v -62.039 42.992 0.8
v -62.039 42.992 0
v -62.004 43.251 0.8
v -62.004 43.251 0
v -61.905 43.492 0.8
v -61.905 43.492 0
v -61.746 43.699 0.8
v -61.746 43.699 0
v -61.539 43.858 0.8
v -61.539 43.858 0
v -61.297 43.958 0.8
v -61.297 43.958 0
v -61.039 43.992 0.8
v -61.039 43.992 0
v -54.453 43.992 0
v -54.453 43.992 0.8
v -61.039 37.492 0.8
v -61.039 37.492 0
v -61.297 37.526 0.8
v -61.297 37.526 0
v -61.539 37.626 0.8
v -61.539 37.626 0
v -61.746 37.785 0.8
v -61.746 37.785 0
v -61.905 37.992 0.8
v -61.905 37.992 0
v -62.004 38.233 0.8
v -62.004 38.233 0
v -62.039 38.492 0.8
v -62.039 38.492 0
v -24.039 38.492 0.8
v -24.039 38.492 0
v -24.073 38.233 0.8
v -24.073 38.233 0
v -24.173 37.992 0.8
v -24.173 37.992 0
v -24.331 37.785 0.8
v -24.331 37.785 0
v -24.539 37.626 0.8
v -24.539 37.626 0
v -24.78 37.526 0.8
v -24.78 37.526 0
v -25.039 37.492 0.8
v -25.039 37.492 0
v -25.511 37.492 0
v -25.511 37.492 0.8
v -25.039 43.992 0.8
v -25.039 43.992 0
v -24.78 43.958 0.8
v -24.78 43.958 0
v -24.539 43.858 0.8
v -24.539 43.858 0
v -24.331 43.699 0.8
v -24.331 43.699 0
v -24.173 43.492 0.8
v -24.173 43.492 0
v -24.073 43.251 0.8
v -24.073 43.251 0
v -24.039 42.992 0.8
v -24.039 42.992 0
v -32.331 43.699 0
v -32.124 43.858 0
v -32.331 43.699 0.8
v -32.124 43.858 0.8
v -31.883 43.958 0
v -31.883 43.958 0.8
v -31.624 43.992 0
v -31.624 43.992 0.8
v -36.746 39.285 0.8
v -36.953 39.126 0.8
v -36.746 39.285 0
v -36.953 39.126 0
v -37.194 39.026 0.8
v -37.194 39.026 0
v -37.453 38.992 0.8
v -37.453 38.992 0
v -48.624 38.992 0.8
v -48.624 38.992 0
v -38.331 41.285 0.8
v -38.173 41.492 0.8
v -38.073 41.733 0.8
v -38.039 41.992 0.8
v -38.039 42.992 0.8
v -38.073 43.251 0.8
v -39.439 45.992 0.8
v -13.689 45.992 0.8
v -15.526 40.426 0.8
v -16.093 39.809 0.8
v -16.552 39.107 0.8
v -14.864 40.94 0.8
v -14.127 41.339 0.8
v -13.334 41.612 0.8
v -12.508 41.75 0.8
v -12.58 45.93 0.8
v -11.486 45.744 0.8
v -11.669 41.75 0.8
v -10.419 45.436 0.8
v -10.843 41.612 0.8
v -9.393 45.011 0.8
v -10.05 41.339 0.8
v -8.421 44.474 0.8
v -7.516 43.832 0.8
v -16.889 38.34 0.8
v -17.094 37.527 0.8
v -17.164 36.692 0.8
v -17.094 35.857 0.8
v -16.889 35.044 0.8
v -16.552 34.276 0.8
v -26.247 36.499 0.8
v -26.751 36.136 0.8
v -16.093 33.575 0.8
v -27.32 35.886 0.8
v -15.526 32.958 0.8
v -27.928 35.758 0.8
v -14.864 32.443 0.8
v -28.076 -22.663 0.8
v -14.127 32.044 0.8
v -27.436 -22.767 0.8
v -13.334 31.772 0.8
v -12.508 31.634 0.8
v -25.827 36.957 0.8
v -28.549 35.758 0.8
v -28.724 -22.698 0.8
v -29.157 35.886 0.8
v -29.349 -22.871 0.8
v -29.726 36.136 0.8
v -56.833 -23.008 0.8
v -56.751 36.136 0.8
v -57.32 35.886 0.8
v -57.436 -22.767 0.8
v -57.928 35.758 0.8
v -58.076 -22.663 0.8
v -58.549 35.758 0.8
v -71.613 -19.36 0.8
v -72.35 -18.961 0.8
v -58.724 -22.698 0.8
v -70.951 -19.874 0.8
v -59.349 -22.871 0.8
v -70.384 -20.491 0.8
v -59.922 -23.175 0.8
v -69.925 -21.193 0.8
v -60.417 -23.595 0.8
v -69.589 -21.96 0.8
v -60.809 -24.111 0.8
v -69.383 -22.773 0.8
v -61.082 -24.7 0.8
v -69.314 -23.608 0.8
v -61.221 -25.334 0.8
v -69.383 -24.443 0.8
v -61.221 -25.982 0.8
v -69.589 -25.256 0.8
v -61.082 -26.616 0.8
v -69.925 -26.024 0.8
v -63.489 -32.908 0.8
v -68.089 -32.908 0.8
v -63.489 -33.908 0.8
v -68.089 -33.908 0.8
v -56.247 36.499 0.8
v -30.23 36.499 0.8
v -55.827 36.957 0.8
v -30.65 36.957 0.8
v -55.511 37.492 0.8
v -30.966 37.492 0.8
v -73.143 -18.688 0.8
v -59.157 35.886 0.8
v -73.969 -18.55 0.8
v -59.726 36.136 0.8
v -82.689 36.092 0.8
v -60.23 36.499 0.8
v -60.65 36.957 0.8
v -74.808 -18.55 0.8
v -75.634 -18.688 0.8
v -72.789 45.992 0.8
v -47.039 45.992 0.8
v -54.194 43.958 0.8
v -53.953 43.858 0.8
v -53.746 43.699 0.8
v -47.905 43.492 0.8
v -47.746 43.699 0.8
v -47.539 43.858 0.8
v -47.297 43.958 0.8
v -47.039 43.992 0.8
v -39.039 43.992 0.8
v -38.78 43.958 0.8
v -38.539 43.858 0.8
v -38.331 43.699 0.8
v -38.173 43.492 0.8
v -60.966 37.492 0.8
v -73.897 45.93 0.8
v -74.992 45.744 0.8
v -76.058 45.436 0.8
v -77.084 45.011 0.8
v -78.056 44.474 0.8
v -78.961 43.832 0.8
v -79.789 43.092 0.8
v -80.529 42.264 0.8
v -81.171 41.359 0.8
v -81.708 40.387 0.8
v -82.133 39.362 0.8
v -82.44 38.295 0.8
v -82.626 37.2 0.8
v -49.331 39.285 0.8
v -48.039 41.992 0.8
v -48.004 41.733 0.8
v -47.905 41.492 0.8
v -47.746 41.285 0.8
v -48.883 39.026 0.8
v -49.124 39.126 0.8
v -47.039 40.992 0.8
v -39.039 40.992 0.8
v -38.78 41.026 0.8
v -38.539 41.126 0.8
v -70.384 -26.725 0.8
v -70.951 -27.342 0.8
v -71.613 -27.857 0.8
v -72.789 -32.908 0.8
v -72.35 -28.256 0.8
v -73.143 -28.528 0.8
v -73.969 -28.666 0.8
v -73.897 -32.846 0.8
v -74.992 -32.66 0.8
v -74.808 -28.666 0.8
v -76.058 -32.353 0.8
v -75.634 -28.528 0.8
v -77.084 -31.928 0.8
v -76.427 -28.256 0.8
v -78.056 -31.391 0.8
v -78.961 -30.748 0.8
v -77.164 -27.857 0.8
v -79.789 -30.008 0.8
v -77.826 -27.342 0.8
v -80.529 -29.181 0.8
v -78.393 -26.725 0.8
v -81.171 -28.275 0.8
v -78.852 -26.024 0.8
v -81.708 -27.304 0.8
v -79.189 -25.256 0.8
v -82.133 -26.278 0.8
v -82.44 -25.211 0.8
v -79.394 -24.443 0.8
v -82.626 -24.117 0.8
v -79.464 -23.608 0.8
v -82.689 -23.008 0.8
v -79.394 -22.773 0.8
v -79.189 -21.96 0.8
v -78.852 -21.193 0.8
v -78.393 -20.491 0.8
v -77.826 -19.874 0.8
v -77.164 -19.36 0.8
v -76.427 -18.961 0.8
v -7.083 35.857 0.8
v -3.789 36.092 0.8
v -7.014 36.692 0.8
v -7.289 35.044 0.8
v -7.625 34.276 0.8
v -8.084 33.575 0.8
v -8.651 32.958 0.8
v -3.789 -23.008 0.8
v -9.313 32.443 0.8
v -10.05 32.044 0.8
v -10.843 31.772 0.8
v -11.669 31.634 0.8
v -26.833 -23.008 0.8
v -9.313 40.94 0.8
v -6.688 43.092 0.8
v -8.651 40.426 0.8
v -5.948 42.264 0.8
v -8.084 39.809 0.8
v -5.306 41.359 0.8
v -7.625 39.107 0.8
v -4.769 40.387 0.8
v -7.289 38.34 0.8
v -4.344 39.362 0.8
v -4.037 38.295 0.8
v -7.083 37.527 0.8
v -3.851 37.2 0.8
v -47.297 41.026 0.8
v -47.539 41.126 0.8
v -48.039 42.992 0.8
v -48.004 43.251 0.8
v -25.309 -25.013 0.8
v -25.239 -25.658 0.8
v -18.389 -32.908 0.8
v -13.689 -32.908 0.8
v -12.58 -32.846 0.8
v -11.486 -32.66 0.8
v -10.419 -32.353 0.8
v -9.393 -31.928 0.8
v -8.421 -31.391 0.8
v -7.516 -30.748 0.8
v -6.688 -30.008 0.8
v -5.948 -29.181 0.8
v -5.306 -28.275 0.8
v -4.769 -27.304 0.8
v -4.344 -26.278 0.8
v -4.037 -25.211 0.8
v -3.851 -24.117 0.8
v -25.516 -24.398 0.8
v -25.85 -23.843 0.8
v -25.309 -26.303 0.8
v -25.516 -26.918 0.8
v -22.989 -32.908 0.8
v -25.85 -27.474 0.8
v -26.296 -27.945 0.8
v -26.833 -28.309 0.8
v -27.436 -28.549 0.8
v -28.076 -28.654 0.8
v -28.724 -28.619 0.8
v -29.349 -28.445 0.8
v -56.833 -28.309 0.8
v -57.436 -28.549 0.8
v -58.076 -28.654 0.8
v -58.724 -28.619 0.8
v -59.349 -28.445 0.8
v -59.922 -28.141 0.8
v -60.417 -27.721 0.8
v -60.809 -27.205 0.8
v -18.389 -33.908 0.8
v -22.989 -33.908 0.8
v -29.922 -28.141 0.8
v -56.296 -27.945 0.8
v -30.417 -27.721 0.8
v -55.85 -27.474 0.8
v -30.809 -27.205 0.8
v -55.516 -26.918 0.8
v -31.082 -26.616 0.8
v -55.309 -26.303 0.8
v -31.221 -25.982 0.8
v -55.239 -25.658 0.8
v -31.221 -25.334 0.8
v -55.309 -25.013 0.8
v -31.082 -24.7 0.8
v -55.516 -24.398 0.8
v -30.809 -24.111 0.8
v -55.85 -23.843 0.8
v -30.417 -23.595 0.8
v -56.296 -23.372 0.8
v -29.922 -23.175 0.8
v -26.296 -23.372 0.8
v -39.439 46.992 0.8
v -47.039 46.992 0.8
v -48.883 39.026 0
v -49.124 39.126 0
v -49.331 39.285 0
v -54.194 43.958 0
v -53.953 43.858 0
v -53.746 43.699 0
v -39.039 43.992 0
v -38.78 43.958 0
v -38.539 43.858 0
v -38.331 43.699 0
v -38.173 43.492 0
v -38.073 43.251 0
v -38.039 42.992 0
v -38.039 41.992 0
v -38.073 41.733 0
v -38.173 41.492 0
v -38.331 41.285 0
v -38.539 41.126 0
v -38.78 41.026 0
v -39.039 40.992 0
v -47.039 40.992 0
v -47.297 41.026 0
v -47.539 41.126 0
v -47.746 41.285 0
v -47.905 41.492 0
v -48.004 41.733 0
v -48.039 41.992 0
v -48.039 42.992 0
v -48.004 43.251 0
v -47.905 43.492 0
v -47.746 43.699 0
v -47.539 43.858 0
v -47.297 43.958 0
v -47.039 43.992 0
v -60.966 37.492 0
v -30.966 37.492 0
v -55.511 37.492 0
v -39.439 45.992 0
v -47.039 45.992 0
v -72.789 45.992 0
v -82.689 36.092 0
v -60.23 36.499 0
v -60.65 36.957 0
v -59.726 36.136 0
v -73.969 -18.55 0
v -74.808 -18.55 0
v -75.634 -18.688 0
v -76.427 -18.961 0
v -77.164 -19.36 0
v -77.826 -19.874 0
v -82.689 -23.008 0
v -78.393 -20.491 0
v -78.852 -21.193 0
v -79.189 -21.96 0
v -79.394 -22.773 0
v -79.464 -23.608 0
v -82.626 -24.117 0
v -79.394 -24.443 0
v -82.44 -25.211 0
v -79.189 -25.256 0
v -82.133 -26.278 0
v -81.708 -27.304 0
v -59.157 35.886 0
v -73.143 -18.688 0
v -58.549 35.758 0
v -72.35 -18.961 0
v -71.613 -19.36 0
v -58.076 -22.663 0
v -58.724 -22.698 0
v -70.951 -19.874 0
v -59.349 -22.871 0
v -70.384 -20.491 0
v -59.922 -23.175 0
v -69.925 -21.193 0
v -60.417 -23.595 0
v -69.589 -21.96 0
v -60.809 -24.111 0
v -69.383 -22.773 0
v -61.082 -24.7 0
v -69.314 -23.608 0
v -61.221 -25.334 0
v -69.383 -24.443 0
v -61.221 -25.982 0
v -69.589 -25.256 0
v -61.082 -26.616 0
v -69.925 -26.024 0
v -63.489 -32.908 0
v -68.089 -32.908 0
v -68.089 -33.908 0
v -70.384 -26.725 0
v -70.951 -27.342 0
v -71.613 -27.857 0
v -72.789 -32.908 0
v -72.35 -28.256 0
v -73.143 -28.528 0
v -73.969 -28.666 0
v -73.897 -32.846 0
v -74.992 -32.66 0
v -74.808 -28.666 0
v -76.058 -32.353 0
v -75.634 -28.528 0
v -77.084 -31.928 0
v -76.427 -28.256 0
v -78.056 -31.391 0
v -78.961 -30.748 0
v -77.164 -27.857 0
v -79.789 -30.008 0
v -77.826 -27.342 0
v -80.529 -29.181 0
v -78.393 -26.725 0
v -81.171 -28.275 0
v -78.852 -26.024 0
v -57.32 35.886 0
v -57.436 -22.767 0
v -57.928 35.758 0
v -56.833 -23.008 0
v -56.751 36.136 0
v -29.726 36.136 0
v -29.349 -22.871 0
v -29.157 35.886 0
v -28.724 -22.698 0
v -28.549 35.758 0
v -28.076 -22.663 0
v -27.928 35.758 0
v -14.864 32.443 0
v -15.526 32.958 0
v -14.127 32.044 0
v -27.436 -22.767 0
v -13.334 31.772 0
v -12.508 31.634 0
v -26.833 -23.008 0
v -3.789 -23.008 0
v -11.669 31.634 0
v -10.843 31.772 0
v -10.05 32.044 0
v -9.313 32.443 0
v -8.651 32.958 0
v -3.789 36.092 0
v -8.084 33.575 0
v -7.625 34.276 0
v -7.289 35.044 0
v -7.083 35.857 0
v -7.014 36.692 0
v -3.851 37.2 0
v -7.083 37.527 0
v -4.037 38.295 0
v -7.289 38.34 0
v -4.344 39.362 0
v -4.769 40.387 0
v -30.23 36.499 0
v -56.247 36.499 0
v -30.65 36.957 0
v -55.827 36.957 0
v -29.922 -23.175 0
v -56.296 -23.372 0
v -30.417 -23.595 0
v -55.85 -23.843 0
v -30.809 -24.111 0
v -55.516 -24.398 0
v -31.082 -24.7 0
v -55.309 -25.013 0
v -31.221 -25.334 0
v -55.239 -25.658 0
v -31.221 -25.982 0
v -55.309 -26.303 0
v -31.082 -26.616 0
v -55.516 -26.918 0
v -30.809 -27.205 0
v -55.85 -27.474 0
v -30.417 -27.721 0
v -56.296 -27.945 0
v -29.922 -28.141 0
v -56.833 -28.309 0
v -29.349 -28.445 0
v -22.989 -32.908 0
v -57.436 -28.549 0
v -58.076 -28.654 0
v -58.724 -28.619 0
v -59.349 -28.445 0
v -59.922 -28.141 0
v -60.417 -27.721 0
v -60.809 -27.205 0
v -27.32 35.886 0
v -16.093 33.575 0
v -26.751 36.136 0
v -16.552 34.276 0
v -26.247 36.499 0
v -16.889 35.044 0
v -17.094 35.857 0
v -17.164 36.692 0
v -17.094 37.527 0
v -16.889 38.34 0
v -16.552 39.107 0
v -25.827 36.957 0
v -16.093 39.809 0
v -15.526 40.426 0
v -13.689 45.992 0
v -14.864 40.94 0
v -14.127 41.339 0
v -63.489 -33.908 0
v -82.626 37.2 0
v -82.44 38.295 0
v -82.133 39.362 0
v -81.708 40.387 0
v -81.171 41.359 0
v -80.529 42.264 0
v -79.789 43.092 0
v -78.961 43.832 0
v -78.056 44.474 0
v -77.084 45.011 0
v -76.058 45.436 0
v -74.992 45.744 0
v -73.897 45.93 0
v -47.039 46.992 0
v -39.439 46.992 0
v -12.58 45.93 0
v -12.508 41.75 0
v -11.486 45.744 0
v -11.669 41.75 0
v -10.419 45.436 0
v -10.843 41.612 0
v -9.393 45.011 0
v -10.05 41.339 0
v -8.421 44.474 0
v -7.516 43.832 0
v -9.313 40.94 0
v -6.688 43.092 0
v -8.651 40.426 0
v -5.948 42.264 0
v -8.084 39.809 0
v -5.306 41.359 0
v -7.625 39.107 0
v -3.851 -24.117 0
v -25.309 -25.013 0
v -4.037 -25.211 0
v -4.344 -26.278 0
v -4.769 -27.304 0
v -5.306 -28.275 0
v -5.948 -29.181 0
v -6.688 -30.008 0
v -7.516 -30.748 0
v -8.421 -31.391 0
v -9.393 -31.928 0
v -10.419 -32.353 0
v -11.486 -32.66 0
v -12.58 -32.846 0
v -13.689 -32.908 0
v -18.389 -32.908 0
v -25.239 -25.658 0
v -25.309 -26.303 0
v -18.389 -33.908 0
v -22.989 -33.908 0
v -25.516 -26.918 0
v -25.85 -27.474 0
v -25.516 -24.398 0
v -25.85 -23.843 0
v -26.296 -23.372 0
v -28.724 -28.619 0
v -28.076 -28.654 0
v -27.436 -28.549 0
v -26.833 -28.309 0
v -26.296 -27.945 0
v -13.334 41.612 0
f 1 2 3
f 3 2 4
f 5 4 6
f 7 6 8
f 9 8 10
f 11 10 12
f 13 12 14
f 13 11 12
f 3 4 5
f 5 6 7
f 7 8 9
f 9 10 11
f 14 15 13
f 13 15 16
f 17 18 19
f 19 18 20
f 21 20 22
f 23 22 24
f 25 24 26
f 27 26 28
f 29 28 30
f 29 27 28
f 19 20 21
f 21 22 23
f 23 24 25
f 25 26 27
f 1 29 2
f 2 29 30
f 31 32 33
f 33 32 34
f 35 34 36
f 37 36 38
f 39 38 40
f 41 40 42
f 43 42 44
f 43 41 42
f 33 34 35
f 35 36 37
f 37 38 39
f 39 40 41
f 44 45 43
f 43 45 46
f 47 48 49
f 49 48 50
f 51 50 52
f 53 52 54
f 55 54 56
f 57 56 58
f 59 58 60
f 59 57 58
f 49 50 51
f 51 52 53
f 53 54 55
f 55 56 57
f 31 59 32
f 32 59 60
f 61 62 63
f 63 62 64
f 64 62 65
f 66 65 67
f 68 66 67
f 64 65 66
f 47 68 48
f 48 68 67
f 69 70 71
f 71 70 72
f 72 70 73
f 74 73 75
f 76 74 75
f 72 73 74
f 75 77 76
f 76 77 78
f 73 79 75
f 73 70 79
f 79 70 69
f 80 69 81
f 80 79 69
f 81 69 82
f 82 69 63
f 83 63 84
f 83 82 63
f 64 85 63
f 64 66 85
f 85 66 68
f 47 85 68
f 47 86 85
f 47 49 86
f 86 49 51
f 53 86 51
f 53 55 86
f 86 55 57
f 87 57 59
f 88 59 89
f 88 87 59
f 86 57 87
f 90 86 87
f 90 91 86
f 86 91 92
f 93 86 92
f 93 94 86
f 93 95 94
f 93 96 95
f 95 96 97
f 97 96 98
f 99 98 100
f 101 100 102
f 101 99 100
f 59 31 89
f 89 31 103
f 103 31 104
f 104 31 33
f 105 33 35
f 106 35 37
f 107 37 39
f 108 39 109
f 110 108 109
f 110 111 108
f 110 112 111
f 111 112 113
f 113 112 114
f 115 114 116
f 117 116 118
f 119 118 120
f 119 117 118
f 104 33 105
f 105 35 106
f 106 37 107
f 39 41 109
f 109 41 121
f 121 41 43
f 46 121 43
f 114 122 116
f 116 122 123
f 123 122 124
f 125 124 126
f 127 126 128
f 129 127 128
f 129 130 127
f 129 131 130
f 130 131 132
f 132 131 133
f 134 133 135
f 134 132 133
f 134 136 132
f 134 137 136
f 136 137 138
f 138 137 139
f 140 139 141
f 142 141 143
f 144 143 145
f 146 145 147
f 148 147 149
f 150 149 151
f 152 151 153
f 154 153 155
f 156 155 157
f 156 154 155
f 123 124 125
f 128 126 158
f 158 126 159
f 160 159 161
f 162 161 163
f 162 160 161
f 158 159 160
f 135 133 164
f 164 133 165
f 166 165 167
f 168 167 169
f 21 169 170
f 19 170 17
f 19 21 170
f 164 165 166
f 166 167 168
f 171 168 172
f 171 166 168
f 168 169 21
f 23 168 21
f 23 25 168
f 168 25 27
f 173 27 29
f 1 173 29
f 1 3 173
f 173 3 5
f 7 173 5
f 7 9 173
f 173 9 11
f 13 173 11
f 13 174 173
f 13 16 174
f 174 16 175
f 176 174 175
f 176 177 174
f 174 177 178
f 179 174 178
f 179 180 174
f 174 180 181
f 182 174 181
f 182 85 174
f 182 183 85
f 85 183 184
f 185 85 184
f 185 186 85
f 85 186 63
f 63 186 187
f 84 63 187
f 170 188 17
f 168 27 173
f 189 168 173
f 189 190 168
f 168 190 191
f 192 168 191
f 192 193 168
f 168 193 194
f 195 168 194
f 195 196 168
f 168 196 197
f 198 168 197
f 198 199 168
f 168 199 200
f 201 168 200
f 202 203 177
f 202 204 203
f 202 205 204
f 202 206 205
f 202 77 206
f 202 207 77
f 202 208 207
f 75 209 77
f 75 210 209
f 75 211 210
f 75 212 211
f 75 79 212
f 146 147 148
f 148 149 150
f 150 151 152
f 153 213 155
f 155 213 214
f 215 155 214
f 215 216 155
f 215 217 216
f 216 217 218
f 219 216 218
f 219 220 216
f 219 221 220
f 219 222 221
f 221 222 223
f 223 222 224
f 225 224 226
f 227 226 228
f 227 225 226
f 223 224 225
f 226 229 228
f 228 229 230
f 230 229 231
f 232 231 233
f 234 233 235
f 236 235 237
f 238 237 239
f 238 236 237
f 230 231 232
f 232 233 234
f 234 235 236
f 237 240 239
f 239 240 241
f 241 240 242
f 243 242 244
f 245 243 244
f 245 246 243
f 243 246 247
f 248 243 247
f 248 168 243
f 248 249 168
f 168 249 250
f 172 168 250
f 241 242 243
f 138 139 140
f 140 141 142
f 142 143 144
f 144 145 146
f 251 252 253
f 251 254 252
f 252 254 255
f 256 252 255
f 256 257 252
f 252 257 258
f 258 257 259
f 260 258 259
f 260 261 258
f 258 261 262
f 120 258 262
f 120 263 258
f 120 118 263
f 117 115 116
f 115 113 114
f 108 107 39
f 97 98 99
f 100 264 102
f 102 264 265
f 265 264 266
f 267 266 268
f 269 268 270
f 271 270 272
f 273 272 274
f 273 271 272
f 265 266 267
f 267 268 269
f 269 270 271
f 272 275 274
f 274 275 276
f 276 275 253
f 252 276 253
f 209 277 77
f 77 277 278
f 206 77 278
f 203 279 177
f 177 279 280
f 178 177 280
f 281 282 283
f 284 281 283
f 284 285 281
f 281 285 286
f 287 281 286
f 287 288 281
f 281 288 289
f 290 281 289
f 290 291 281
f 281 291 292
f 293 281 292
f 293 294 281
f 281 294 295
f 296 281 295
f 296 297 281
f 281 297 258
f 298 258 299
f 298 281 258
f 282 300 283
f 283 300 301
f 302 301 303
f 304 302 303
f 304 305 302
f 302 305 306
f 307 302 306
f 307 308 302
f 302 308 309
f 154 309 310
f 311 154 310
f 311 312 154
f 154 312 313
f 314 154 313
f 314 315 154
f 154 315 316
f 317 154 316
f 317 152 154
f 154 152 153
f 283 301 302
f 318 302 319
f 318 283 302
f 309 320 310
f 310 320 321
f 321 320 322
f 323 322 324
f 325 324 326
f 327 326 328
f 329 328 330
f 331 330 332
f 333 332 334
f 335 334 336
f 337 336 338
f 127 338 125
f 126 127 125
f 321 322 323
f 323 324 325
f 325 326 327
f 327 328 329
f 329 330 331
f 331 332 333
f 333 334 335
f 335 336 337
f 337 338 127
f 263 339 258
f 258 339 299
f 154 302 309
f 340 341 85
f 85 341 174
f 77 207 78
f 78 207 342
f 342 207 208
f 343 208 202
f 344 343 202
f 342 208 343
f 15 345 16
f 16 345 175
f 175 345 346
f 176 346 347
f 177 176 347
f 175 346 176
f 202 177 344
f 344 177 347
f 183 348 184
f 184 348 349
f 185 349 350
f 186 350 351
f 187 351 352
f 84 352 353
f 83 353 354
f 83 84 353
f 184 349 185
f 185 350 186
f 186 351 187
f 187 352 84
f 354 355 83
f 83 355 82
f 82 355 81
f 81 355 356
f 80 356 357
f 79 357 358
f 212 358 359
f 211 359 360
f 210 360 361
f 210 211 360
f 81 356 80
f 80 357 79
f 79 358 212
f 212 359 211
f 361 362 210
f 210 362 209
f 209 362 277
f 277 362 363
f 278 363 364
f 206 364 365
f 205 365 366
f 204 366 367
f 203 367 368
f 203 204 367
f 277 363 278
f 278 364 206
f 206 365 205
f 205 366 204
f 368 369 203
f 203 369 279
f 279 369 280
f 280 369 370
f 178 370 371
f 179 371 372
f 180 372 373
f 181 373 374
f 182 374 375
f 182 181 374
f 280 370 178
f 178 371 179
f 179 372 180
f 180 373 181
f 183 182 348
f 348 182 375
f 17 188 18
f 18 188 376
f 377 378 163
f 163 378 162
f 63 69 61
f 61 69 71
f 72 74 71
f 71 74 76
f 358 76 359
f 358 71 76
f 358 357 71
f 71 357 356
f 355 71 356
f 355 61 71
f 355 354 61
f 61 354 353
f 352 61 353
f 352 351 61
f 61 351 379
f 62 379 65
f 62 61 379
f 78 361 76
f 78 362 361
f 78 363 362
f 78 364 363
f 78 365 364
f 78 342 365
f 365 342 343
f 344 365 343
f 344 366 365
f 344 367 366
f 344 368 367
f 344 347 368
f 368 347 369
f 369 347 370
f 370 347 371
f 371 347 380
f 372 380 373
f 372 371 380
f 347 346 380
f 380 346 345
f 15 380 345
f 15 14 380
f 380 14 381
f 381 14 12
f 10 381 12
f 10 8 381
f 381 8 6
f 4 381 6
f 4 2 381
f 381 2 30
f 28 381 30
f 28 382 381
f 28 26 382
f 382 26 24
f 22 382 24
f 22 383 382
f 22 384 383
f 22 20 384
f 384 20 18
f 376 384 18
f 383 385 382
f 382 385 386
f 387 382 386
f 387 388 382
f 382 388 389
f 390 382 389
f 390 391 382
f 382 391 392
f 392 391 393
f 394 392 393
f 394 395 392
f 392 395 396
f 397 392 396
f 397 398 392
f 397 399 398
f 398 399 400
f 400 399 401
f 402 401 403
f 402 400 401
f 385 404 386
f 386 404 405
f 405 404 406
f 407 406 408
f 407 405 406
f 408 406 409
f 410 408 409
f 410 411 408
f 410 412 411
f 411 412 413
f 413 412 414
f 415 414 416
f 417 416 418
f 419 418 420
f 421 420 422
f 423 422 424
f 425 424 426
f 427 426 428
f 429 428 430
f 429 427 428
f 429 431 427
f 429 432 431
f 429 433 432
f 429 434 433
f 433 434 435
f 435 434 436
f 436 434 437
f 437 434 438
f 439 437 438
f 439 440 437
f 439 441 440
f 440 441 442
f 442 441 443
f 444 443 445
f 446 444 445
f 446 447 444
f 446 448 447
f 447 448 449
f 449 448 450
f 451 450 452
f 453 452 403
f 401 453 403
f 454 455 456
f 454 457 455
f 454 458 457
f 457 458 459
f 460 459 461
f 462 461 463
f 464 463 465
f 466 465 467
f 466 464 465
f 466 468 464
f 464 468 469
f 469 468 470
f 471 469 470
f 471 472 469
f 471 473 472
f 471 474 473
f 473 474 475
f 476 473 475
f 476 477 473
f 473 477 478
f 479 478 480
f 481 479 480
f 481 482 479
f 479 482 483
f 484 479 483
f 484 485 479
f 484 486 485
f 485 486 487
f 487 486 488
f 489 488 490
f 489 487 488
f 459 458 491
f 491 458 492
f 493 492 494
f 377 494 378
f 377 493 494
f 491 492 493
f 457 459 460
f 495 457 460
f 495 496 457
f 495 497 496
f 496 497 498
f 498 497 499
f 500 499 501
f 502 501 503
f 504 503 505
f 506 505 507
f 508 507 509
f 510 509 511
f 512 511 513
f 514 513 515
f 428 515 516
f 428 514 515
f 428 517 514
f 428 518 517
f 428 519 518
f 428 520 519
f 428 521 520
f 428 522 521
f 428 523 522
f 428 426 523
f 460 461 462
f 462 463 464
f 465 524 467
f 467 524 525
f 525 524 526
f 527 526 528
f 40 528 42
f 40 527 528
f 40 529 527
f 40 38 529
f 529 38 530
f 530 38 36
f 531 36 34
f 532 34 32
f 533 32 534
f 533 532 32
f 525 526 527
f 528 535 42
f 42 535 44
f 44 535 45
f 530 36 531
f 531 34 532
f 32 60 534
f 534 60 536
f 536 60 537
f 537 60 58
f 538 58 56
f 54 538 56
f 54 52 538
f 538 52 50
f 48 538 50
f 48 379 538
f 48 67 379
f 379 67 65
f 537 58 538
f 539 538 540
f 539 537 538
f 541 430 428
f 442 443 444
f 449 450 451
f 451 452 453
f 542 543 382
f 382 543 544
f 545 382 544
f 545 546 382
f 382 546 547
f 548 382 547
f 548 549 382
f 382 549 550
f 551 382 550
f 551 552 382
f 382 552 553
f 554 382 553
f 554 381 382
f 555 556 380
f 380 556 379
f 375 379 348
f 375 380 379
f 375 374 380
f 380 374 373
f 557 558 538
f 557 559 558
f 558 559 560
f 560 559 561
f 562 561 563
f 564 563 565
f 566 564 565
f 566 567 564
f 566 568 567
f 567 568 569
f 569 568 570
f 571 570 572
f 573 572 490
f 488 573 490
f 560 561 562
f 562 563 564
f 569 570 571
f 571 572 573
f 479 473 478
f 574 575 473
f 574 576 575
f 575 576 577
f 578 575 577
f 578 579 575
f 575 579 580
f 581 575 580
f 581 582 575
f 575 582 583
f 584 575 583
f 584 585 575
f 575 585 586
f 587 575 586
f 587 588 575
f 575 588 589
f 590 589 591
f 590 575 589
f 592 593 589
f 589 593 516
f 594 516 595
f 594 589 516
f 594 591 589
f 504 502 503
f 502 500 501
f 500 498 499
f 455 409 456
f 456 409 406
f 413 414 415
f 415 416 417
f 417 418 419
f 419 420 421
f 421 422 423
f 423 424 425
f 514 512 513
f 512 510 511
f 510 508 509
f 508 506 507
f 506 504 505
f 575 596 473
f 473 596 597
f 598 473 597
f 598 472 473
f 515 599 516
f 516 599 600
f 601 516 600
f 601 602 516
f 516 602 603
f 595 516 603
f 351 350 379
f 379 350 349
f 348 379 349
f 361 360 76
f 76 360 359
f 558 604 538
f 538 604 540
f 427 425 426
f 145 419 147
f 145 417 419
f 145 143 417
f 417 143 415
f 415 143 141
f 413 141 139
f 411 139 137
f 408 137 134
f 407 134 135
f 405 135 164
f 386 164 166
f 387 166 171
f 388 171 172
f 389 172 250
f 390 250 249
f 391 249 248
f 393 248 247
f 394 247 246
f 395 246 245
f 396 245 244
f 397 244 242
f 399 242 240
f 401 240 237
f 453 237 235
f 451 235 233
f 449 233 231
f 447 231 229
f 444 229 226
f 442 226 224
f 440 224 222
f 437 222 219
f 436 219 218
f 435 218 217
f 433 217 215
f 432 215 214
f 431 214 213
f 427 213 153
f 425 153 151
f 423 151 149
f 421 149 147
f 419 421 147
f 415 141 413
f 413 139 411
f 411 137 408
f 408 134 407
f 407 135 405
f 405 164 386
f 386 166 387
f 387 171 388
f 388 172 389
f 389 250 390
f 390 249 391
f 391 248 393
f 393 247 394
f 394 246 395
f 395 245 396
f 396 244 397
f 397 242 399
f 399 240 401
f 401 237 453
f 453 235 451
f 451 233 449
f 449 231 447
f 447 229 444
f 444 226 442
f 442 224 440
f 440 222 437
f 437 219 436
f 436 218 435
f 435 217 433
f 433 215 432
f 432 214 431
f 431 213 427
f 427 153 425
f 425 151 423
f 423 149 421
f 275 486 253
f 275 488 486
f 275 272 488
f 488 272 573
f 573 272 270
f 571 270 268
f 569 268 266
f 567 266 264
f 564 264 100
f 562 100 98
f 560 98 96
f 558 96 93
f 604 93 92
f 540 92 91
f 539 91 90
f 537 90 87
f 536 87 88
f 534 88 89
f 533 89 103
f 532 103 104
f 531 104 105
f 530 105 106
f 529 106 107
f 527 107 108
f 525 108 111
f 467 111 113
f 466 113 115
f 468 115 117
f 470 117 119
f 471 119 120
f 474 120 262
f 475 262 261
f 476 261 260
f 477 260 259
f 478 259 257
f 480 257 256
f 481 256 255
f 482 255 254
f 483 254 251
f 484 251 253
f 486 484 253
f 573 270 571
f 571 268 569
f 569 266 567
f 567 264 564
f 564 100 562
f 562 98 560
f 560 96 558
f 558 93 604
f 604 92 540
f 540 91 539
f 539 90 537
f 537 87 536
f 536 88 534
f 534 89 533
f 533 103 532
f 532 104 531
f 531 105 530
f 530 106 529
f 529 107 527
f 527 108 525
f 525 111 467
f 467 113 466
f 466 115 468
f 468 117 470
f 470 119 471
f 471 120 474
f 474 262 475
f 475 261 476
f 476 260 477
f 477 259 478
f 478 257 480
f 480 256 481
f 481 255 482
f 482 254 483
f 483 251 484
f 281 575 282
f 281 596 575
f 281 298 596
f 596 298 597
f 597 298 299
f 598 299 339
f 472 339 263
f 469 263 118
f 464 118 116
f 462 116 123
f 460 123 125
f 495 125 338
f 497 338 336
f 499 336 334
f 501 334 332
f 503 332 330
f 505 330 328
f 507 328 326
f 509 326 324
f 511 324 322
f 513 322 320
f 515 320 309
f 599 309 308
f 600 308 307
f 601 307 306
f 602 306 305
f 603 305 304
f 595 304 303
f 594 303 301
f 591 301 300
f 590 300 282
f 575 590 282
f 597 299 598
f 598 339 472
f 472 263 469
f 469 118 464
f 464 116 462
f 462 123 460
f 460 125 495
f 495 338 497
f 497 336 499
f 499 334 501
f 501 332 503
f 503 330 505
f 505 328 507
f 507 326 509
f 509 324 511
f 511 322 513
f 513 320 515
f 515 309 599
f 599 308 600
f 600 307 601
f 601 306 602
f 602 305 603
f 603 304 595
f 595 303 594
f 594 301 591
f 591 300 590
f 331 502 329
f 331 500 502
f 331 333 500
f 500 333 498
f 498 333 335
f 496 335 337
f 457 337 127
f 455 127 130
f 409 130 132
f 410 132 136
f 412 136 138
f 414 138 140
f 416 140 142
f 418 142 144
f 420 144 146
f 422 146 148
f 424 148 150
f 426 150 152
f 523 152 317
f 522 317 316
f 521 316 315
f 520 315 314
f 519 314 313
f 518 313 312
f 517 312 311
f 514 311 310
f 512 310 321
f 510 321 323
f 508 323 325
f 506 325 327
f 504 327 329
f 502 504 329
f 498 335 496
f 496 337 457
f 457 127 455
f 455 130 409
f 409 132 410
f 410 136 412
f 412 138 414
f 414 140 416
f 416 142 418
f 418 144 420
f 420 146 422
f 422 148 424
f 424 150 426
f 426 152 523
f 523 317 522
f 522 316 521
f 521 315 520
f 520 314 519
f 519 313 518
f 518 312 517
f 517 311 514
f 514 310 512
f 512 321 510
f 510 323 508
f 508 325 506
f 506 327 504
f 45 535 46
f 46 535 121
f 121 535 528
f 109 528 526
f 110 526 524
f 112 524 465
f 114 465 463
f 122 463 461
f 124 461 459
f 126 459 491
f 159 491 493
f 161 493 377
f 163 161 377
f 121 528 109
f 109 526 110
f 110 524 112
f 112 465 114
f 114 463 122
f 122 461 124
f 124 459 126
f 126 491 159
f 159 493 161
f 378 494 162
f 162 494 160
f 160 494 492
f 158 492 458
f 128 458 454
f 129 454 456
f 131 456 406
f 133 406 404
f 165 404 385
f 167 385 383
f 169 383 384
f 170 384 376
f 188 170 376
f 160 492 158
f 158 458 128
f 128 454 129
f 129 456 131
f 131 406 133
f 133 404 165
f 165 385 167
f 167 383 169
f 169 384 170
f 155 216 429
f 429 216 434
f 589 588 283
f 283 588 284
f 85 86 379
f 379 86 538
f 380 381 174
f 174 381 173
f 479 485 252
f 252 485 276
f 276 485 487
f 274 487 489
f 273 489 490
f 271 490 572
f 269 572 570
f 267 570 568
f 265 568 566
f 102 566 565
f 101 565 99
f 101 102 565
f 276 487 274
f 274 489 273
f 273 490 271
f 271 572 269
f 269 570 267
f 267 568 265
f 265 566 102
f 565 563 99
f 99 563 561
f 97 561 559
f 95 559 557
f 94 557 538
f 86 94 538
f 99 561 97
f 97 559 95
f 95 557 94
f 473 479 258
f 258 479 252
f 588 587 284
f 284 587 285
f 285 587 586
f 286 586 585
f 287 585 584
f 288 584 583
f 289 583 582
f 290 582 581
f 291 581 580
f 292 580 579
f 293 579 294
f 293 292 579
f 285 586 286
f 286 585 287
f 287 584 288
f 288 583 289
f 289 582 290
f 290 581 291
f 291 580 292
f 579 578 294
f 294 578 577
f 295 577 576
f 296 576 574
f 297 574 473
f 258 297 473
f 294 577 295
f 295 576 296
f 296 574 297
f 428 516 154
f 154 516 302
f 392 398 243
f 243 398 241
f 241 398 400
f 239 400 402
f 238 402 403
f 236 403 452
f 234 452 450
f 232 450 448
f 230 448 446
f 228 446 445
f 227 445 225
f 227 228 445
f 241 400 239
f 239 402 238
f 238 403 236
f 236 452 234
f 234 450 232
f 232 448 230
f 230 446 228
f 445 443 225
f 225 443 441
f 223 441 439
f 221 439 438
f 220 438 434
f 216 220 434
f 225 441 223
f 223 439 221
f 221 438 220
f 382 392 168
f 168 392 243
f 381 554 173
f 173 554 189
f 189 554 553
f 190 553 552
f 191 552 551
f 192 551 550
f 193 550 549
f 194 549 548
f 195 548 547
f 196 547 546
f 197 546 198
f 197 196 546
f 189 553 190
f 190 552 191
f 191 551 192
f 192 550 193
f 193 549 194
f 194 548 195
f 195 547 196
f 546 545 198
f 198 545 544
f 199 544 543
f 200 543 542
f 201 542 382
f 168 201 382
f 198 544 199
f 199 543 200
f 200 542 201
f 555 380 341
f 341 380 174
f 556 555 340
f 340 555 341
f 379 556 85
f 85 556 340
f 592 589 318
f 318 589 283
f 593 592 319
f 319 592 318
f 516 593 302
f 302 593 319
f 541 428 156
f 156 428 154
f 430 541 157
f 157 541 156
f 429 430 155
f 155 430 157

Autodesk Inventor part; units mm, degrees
ref_plane "YZ Plane" through (0, 0, 0) normal (1, 0, 0) x (0, 1, 0)
ref_plane "XZ Plane" through (0, 0, 0) normal (0, 1, 0) x (-1, 0, 0)
ref_plane "XY Plane" through (0, 0, 0) normal (0, 0, 1) x (1, 0, 0)
sketch "Skizze1" plane through (0, 0, 0) normal (0, 0, 1) x (1, 0, 0)
  line L0 (-3.6885, 36.0919) -> (-3.6885, -23.0081) construction
  arc A0 (-13.6885, -33.0081) -> (-3.6885, -23.0081) centre (-13.6885, -23.0081) ccw construction
  line L1 (-13.6885, -33.0081) -> (-72.7885, -33.0081) construction
  arc A1 (-82.7885, -23.0081) -> (-72.7885, -33.0081) centre (-72.7885, -23.0081) ccw construction
  line L2 (-82.7885, -23.0081) -> (-82.7885, 36.0919) construction
  arc A2 (-72.7885, 46.0919) -> (-82.7885, 36.0919) centre (-72.7885, 36.0919) ccw construction
  line L3 (-72.7885, 46.0919) -> (-13.6885, 46.0919) construction
  arc A3 (-3.6885, 36.0919) -> (-13.6885, 46.0919) centre (-13.6885, 36.0919) ccw construction
  arc A4 (-75.2885, 48.5919) -> (-85.2885, 38.5919) centre (-75.2885, 38.5919) ccw construction
  line L4 (-85.2885, 38.5919) -> (-85.2885, -25.5081) construction
  arc A5 (-85.2885, -25.5081) -> (-75.2885, -35.5081) centre (-75.2885, -25.5081) ccw construction
  line L5 (-75.2885, -35.5081) -> (-11.1885, -35.5081) construction
  arc A6 (-11.1885, -35.5081) -> (-1.1885, -25.5081) centre (-11.1885, -25.5081) ccw construction
  line L6 (-1.1885, -25.5081) -> (-1.1885, 38.5919) construction
  arc A7 (-1.1885, 38.5919) -> (-11.1885, 48.5919) centre (-11.1885, 38.5919) ccw construction
  line L7 (-11.1885, 48.5919) -> (-75.2885, 48.5919) construction
  line L8 (-13.6885, 45.9919) -> (-72.7885, 45.9919)
  arc A8 (-72.7885, 45.9919) -> (-82.6885, 36.0919) centre (-72.7885, 36.0919) ccw
  line L9 (-82.6885, 36.0919) -> (-82.6885, -23.0081)
  arc A9 (-82.6885, -23.0081) -> (-72.7885, -32.9081) centre (-72.7885, -23.0081) ccw
  line L10 (-72.7885, -32.9081) -> (-13.6885, -32.9081)
  arc A10 (-13.6885, -32.9081) -> (-3.7885, -23.0081) centre (-13.6885, -23.0081) ccw
  line L11 (-3.7885, -23.0081) -> (-3.7885, 36.0919)
  arc A11 (-3.7885, 36.0919) -> (-13.6885, 45.9919) centre (-13.6885, 36.0919) ccw
  line L12 (-47.3385, 46.0919) -> (-47.3385, 47.2919) construction
  line L13 (-47.3385, 47.2919) -> (-39.1385, 47.2919) construction
  line L14 (-39.1385, 46.0919) -> (-39.1385, 47.2919) construction
  line L15 (-68.3885, -33.0081) -> (-68.3885, -34.2081) construction
  line L16 (-63.1885, -33.0081) -> (-63.1885, -34.2081) construction
  line L17 (-63.1885, -34.2081) -> (-68.3885, -34.2081) construction
  line L18 (-23.2885, -33.0081) -> (-23.2885, -34.2081) construction
  line L19 (-18.0885, -34.2081) -> (-23.2885, -34.2081) construction
  line L20 (-18.0885, -33.0081) -> (-18.0885, -34.2081) construction
  line L21 (-68.0885, -32.9081) -> (-63.4885, -32.9081)
  line L22 (-63.4885, -32.9081) -> (-63.4885, -33.9081)
  line L23 (-63.4885, -33.9081) -> (-68.0885, -33.9081)
  line L24 (-68.0885, -33.9081) -> (-68.0885, -32.9081)
  line L25 (-22.9885, -32.9081) -> (-18.3885, -32.9081)
  line L26 (-18.3885, -32.9081) -> (-18.3885, -33.9081)
  line L27 (-18.3885, -33.9081) -> (-22.9885, -33.9081)
  line L28 (-22.9885, -33.9081) -> (-22.9885, -32.9081)
  line L29 (-47.0385, 45.9919) -> (-39.4385, 45.9919)
  line L30 (-39.4385, 45.9919) -> (-39.4385, 46.9919)
  line L31 (-39.4385, 46.9919) -> (-47.0385, 46.9919)
  line L32 (-47.0385, 46.9919) -> (-47.0385, 45.9919)
  line L33 (-62.0385, 43.9919) -> (-54.0385, 43.9919)
  line L34 (-54.0385, 43.9919) -> (-49.0385, 38.9919)
  line L35 (-49.0385, 38.9919) -> (-37.0385, 38.9919)
  line L36 (-37.0385, 38.9919) -> (-32.0385, 43.9919)
  line L37 (-32.0385, 43.9919) -> (-24.0385, 43.9919)
  line L38 (-24.0385, 43.9919) -> (-24.0385, 37.4919)
  line L39 (-24.0385, 37.4919) -> (-62.0385, 37.4919)
  line L40 (-62.0385, 37.4919) -> (-62.0385, 43.9919)
  line L41 (-48.0385, 43.9919) -> (-38.0385, 43.9919)
  line L42 (-38.0385, 43.9919) -> (-38.0385, 40.9919)
  line L43 (-38.0385, 40.9919) -> (-48.0385, 40.9919)
  line L44 (-48.0385, 40.9919) -> (-48.0385, 43.9919)
  circle A12 centre (-74.3885, -23.6081) radius 4.075 construction
  circle A13 centre (-12.0885, 36.6919) radius 4.075 construction
  circle A14 centre (-12.0885, 36.6919) radius 5.075
  circle A15 centre (-74.3885, -23.6081) radius 5.075
  arc A16 (-56.277, -27.2081) -> (-60.2001, -27.2081) centre (-58.2385, -25.6581) ccw construction
  arc A17 (-26.277, -27.2081) -> (-30.2001, -27.2081) centre (-28.2385, -25.6581) ccw construction
  arc A18 (-60.1167, 40.3919) -> (-56.3604, 40.3919) centre (-58.2385, 38.7419) ccw construction
  arc A19 (-30.1167, 40.3919) -> (-26.3604, 40.3919) centre (-28.2385, 38.7419) ccw construction
  circle A20 centre (-58.2385, 38.7419) radius 3
  circle A21 centre (-28.2385, 38.7419) radius 3
  circle A22 centre (-58.2385, -25.6581) radius 3
  circle A23 centre (-28.2385, -25.6581) radius 3
  point P0 (0, 0)
  dimension "d0" = 0.1
  dimension "d1" = 0.3
  dimension "d2" = 0.3
  dimension "d3" = 0.3
  dimension "d4" = 0.3
  dimension "d5" = 0.3
  dimension "d6" = 0.3
  dimension "d7" = 0.3
  dimension "d8" = 0.3
  dimension "d9" = 0.3
  dimension "d10" = 135
  dimension "d11" = 1.5
  dimension "d12" = 2
  dimension "d13" = 8
  dimension "d14" = 8
  dimension "d15" = 12
  dimension "d17" = 2
  dimension "d18" = 10
  dimension "d19" = 1
  dimension "d20" = 2
  dimension "d21" = 3
  dimension "d22" = 2
  dimension "d25" = 1
  dimension "d26" = 1
  dimension "d28" = 6
  dimension "d29" = 6
  dimension "d30" = 6
  dimension "d31" = 6
extrude "Extrusion1" add sketch "Skizze1" along normal blind 0.8
fillet "Rundung1" radius 1 12 edges at (-48.0385, 43.9919, 0.4) (-48.0385, 40.9919, 0.4) (-38.0385, 40.9919, 0.4) (-38.0385, 43.9919, 0.4) (-54.0385, 43.9919, 0.4) (-49.0385, 38.9919, 0.4) (-37.0385, 38.9919, 0.4) (-32.0385, 43.9919, 0.4) (-24.0385, 43.9919, 0.4) (-24.0385, 37.4919, 0.4) (-62.0385, 37.4919, 0.4) (-62.0385, 43.9919, 0.4)
equation "\"d1\" = d4"
equation "\"d2\" = d1"
equation "\"d3\" = d1"
equation "\"d5\" = d4"
equation "\"d6\" = d4"
equation "\"d7\" = d9"
equation "\"d8\" = d7"
equation "\"d9\" = d4"
equation "\"d26\" = d25"
equation "\"d29\" = d28"
equation "\"d30\" = d28"
equation "\"d31\" = d28"
properties part number "Boden"
